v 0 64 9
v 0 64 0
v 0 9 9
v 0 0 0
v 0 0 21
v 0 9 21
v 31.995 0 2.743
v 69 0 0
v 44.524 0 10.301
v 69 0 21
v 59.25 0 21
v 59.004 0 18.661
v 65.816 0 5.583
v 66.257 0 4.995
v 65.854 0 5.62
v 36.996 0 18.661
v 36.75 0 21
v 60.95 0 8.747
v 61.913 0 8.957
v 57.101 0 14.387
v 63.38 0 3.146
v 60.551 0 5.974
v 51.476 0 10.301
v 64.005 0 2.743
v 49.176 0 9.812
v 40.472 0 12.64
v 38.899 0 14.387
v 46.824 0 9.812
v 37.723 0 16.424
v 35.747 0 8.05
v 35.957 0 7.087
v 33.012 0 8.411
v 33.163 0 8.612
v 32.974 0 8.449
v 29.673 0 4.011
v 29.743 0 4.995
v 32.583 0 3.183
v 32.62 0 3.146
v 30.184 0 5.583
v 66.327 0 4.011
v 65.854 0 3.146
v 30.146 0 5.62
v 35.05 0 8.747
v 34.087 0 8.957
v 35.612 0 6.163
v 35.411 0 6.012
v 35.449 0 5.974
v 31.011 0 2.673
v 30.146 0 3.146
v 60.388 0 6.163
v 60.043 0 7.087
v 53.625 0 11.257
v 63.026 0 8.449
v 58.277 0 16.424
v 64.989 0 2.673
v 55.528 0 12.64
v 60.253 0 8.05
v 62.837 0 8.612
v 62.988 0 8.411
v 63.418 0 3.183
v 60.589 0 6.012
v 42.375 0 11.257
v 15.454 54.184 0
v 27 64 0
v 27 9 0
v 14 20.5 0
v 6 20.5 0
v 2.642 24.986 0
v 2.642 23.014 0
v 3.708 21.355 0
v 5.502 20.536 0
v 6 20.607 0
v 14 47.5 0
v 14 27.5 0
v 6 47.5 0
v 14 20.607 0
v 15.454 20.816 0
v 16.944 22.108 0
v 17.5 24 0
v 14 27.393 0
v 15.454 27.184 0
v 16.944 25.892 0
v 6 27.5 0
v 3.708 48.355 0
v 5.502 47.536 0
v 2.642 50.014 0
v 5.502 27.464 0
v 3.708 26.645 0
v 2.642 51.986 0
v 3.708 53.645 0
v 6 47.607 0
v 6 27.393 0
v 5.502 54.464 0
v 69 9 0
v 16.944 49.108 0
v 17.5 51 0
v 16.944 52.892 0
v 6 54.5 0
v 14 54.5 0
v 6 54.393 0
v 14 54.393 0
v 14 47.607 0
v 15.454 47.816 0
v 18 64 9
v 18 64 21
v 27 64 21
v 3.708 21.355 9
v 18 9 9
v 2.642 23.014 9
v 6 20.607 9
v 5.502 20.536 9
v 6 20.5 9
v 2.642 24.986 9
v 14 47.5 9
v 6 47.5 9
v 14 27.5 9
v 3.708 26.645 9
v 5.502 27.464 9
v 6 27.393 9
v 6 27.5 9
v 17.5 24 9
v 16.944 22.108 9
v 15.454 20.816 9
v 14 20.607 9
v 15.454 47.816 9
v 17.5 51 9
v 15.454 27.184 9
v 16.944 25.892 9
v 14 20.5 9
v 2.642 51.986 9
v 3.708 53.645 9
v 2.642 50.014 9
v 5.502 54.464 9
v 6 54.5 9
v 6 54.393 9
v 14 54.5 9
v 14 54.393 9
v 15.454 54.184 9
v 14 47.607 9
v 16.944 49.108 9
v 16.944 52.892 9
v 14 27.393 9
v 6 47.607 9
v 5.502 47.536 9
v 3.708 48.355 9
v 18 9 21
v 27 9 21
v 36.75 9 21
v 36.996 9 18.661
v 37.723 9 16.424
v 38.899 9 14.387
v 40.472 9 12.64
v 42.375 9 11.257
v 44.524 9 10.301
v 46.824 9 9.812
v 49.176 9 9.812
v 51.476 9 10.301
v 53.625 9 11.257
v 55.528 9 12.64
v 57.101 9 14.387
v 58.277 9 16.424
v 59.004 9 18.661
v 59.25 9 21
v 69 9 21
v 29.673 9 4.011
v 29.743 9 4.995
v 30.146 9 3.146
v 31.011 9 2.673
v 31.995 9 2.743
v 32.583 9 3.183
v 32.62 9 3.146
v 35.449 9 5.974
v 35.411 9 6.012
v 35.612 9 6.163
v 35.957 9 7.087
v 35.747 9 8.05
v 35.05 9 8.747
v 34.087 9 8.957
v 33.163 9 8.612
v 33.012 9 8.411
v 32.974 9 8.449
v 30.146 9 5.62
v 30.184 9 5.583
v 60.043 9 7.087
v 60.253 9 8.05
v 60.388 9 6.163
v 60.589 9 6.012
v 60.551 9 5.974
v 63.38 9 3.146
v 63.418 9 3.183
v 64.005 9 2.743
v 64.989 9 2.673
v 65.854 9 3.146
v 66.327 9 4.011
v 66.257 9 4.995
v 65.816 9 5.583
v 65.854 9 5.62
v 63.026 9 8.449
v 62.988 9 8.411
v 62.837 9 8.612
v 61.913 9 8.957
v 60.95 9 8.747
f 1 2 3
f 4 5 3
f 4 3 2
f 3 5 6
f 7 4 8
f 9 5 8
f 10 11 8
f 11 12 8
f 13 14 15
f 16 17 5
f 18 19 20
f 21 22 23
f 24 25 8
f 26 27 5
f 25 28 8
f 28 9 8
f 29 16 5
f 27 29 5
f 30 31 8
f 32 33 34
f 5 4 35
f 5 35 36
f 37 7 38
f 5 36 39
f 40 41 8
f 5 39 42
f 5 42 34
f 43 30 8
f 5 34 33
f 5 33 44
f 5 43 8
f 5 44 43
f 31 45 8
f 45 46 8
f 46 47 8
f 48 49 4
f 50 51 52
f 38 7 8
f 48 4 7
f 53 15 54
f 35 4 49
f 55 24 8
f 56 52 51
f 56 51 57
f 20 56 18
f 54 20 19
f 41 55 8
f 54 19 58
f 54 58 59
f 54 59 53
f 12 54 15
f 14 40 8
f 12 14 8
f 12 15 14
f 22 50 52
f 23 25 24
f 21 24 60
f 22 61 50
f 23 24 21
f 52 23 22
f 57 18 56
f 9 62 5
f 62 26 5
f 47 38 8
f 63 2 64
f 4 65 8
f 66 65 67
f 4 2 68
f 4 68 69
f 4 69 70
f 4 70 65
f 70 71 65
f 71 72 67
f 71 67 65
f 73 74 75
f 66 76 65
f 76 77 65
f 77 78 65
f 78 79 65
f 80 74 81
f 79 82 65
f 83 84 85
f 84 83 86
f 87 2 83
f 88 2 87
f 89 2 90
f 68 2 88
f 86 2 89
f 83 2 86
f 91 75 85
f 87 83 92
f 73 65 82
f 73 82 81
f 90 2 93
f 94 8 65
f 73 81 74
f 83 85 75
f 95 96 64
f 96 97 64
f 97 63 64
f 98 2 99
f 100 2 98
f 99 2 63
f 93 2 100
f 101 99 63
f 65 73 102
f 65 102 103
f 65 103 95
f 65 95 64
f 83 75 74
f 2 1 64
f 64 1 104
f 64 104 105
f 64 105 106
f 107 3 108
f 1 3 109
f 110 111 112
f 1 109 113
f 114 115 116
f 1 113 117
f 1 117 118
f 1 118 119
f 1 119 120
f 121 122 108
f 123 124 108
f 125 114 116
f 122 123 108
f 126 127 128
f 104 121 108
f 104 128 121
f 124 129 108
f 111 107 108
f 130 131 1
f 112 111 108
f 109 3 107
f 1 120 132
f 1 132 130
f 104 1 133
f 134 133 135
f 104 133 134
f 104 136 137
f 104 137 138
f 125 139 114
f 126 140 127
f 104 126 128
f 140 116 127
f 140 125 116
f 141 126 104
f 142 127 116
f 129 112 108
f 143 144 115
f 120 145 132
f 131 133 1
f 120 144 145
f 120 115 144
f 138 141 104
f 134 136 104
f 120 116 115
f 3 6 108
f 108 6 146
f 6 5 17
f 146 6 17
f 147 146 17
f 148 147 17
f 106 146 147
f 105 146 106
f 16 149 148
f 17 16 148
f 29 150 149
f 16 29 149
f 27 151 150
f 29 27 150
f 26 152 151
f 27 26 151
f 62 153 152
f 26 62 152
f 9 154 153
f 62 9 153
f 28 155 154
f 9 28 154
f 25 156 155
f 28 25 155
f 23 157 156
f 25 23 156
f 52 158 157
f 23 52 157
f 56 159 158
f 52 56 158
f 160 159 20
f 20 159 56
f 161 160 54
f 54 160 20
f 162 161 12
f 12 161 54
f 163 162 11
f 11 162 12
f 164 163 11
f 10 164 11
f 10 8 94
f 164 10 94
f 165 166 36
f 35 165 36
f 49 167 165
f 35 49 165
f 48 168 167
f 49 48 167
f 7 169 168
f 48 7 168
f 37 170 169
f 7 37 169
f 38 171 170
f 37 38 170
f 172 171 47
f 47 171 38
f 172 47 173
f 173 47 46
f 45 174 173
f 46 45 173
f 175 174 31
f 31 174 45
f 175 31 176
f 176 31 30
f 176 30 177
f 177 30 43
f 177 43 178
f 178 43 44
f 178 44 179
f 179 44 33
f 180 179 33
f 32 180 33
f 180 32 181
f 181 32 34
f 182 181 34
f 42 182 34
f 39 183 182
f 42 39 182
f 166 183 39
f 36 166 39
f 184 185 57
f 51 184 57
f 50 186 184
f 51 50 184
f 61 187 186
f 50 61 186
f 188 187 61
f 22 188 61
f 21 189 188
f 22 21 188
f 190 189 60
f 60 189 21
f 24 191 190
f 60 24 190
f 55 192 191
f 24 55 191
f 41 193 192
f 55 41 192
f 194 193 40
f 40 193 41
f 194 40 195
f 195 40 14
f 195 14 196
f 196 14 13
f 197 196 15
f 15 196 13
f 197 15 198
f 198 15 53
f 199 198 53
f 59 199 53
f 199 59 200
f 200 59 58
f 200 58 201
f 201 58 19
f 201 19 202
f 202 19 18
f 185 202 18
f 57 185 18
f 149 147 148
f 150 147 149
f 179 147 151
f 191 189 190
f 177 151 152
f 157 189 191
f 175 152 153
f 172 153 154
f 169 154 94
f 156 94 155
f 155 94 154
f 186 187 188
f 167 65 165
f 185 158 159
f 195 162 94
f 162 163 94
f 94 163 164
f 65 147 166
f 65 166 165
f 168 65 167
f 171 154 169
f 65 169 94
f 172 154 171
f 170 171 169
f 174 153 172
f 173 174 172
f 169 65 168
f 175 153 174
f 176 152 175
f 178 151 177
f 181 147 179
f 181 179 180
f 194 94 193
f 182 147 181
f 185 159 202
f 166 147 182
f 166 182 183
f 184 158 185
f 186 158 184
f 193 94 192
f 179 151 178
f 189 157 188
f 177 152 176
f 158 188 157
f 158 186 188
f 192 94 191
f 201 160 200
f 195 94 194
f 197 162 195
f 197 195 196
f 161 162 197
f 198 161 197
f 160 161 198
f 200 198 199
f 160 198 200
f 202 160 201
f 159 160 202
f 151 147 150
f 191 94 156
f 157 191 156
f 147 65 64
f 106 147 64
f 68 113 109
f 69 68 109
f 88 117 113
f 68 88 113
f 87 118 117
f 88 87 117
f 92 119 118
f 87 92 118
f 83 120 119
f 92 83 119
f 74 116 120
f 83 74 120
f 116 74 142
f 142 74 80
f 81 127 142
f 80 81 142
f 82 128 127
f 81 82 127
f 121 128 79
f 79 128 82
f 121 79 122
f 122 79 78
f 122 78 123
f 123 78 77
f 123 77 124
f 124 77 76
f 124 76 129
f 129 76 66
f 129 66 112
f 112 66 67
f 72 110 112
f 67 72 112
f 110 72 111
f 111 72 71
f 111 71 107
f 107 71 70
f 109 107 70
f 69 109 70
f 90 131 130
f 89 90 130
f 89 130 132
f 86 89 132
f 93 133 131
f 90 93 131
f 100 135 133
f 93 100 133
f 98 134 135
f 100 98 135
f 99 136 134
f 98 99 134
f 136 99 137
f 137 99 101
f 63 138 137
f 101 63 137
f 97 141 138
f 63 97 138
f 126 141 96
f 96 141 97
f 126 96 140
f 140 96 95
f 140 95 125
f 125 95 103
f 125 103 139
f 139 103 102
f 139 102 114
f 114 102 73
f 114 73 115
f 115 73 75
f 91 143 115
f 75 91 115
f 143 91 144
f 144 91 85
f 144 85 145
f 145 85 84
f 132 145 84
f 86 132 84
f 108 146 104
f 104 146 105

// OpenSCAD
// A280 Mill top slide bracket design, to hold a NEMA17 stepper.
// vik@diamondage.co.nz 1-Mar-2013, Placed in the Public Domain
// I'll upload it to thingiverse.com

// Measurements in mm
nema17_side=42;				// NEMA17 side length
wall=9;						// Thickness of any bit of bracket.
bk_length=64;				// Length of bracket along axis of slide screw.
bk_width=69-nema17_side; 	// Width of bit taking slide mount screws.
m3_clearance_rad=1.8;

module body_block() {
	cube([bk_width,bk_length,wall]);		// Slab for screws
	translate([bk_width-wall,0,0])		// Wall down the middle
		cube([wall,bk_length,nema17_side/2]);
	cube([bk_width+nema17_side,wall,nema17_side/2]);	// Frontpiece to hold motor
}

module slot() {
	cube([8,7,50],center=true);
	translate ([-4,0,0])cylinder(r=3.5,h=50,center=true);
	translate ([4,0,0]) cylinder(r=3.5,h=50,center=true);
}

// Hole for a NEMA17 with one sloped side so that the wires can dangle
// out of it...
module nema_17_slots() {
	union () {
		cylinder (h=nema17_side*1.5,r=22.5/2,center=true);
        // 8mm * M3 clearance slots, 4 of.
        rotate ([0,0,45]) translate([21.5,0,0]) scale(0.5) slot();
		rotate ([0,0,-45]) translate([21.5,0,0])  scale(0.5) slot();
		rotate ([0,0,135]) translate([21.5,0,0])  scale(0.5) slot();
		rotate ([0,0,-135]) translate([21.5,0,0])  scale(0.5) slot();
	}
}


difference () {
	body_block();
	translate([10,24,0]) slot();
	translate([10,51,0]) slot();
	// NEMA17 Mounting holes
    translate([bk_width+nema17_side/2,0,nema17_side/2])
        rotate([90,0,0]) nema_17_slots();
}
